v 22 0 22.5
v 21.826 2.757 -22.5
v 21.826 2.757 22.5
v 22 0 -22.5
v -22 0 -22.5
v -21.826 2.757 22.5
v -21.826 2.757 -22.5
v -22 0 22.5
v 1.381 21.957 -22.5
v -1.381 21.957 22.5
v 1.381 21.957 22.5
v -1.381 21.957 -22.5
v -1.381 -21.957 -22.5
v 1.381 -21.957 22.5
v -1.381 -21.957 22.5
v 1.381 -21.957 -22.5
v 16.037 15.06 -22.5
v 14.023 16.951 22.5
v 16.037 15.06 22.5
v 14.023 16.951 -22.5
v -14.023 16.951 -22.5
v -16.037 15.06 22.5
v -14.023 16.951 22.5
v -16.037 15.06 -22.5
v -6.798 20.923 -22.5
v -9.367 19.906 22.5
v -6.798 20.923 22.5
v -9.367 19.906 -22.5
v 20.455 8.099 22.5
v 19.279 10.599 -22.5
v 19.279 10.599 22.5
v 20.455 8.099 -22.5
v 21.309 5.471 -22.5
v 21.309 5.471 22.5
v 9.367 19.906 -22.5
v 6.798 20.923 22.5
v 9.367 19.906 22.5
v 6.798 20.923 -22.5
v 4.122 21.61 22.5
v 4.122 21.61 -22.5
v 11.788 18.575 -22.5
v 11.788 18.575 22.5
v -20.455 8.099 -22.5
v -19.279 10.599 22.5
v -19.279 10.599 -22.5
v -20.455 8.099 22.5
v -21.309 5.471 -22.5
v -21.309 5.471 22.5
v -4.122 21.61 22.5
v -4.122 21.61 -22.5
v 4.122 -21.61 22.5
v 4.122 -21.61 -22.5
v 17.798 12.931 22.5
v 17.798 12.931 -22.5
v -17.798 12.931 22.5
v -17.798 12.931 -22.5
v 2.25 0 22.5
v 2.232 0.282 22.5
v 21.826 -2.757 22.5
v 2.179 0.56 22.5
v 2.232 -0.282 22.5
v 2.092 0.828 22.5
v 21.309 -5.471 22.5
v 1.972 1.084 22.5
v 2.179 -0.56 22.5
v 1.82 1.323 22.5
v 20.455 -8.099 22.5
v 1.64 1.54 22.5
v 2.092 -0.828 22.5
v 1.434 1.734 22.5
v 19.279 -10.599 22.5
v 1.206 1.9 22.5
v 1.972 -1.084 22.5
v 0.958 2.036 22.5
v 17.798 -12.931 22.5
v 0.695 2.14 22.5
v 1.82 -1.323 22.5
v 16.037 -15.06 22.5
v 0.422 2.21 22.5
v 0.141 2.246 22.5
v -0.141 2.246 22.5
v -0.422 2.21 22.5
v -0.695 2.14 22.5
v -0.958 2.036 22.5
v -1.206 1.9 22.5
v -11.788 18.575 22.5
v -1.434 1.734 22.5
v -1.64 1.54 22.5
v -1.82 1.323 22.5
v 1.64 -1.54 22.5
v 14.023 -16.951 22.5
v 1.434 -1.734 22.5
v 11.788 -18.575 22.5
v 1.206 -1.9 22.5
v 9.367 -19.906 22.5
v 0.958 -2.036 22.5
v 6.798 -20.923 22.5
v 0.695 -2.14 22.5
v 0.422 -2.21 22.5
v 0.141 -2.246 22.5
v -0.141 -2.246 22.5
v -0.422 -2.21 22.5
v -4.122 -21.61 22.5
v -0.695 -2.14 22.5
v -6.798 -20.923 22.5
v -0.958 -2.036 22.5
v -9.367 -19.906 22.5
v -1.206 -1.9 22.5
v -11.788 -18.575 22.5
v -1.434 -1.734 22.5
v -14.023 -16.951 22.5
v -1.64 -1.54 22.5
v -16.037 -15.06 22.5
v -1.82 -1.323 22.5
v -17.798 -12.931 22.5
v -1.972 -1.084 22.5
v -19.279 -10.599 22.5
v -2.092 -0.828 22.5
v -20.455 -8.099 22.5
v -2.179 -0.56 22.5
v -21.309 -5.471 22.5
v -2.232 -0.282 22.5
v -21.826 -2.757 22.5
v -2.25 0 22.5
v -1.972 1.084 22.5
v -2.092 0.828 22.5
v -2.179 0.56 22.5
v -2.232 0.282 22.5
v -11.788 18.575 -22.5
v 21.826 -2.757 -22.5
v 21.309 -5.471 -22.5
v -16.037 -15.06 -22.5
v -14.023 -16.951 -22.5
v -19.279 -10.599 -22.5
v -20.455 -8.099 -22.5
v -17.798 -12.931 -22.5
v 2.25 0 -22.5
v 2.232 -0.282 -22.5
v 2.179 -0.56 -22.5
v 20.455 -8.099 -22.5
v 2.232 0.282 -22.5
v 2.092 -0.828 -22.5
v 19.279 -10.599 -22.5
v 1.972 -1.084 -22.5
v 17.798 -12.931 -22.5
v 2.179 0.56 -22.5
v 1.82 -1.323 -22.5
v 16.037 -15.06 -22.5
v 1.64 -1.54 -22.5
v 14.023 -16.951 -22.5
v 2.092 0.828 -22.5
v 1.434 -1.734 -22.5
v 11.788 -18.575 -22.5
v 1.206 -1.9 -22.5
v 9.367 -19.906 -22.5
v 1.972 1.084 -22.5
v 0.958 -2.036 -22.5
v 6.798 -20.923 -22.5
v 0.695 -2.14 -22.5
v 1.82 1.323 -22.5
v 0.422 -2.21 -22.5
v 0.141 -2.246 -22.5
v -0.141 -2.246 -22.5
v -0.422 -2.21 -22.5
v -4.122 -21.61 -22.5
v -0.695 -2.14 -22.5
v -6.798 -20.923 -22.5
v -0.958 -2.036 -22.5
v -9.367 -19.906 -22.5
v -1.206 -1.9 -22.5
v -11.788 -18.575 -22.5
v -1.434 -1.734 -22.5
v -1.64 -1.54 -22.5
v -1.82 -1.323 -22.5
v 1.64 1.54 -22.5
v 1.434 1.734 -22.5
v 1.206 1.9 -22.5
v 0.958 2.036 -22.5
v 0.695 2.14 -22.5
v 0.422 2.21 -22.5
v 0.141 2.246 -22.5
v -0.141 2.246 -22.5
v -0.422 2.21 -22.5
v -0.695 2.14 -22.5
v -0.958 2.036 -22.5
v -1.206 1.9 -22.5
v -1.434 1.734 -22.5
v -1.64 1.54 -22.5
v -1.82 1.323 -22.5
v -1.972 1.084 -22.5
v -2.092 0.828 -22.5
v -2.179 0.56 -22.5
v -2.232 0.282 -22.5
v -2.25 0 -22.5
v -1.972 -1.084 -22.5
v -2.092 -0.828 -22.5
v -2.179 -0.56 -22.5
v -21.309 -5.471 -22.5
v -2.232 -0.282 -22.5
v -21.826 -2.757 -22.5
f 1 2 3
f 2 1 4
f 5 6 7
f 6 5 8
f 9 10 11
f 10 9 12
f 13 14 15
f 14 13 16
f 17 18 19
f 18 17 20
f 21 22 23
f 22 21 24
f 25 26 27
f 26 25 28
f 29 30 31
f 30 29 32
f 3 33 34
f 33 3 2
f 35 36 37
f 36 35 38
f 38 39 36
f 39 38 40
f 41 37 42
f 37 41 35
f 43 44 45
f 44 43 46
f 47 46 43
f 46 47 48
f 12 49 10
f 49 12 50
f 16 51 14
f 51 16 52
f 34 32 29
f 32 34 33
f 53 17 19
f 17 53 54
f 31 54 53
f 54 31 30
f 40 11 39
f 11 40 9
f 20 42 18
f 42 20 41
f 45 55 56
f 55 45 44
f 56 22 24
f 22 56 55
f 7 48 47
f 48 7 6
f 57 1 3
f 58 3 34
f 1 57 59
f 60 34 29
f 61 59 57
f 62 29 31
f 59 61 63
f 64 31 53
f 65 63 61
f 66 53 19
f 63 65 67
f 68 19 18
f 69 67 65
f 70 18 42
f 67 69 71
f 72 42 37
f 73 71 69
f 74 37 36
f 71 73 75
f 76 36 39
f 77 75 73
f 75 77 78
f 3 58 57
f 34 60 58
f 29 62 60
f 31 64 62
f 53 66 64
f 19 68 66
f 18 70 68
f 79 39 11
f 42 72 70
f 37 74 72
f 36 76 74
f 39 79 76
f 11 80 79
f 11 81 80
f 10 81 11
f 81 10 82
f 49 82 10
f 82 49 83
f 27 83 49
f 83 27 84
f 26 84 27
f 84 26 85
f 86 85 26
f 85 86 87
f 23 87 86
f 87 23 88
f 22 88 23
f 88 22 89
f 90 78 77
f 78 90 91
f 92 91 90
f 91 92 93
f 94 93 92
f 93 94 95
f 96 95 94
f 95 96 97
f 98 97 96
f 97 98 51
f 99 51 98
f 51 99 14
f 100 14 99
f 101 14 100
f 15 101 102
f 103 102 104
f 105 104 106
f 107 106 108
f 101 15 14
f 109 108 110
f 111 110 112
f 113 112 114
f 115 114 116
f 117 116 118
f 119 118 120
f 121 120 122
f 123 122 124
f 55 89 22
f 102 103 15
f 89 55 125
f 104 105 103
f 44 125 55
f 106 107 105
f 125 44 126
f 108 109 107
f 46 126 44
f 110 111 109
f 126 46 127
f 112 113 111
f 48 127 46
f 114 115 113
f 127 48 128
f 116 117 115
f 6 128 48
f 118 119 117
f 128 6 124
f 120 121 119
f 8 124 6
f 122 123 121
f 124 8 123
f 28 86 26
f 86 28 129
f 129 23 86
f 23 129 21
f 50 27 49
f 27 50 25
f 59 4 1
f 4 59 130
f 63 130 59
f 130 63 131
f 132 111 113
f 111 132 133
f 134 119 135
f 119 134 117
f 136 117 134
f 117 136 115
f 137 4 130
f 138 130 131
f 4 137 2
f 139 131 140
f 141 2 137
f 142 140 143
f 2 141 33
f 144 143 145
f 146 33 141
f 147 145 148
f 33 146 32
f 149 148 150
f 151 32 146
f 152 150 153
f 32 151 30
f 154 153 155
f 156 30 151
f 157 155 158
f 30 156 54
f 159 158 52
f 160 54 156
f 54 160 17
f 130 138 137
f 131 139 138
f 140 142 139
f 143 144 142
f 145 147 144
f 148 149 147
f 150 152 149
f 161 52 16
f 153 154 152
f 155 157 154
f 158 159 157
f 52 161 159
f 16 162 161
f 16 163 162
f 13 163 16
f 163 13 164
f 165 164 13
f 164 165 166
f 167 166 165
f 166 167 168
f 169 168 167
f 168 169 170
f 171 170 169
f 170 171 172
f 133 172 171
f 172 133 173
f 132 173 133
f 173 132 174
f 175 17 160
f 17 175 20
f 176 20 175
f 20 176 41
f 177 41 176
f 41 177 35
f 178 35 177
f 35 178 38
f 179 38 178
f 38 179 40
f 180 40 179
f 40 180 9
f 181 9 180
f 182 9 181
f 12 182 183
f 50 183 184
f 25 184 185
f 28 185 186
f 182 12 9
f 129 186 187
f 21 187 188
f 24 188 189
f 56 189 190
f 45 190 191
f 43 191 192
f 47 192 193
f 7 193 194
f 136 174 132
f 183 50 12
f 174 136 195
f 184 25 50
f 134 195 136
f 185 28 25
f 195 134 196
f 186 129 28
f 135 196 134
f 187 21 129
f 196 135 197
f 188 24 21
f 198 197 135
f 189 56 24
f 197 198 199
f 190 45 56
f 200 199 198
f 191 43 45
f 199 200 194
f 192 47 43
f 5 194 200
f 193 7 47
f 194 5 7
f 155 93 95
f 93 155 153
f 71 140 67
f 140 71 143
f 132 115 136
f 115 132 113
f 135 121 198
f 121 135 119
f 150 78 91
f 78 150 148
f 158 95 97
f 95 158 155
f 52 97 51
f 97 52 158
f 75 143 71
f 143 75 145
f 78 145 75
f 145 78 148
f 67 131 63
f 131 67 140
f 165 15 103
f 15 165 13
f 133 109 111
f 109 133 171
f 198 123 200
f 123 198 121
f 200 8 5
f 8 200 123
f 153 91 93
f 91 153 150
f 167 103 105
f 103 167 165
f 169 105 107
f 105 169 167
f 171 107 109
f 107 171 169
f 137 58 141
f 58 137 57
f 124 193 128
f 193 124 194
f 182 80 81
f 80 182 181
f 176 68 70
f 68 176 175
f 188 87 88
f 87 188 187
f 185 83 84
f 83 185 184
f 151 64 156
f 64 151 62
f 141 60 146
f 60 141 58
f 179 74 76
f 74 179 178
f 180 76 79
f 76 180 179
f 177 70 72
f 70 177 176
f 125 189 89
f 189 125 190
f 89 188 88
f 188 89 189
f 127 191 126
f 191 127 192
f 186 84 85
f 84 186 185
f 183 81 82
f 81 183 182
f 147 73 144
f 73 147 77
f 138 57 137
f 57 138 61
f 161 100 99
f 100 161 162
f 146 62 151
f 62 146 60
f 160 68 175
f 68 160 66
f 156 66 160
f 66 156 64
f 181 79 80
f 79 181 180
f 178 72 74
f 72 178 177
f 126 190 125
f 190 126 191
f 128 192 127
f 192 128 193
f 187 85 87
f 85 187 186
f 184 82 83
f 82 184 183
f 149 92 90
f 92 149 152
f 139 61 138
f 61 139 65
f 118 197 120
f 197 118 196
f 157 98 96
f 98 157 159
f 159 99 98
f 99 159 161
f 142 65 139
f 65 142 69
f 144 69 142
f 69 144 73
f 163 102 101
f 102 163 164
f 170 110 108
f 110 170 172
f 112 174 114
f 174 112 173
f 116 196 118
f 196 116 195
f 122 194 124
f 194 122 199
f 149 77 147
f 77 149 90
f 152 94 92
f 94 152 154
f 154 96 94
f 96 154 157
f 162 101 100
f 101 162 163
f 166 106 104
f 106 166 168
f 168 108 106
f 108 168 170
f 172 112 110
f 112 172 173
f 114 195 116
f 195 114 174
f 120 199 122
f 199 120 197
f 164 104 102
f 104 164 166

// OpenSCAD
$fn = 50;


difference() {
	union() {
		translate(v = [0, 0, -22.5000000000]) {
			cylinder(h = 45, r = 22.0000000000);
		}
	}
	union() {
		translate(v = [0, 0, -100.0000000000]) {
			cylinder(h = 200, r = 2.2500000000);
		}
	}
}
